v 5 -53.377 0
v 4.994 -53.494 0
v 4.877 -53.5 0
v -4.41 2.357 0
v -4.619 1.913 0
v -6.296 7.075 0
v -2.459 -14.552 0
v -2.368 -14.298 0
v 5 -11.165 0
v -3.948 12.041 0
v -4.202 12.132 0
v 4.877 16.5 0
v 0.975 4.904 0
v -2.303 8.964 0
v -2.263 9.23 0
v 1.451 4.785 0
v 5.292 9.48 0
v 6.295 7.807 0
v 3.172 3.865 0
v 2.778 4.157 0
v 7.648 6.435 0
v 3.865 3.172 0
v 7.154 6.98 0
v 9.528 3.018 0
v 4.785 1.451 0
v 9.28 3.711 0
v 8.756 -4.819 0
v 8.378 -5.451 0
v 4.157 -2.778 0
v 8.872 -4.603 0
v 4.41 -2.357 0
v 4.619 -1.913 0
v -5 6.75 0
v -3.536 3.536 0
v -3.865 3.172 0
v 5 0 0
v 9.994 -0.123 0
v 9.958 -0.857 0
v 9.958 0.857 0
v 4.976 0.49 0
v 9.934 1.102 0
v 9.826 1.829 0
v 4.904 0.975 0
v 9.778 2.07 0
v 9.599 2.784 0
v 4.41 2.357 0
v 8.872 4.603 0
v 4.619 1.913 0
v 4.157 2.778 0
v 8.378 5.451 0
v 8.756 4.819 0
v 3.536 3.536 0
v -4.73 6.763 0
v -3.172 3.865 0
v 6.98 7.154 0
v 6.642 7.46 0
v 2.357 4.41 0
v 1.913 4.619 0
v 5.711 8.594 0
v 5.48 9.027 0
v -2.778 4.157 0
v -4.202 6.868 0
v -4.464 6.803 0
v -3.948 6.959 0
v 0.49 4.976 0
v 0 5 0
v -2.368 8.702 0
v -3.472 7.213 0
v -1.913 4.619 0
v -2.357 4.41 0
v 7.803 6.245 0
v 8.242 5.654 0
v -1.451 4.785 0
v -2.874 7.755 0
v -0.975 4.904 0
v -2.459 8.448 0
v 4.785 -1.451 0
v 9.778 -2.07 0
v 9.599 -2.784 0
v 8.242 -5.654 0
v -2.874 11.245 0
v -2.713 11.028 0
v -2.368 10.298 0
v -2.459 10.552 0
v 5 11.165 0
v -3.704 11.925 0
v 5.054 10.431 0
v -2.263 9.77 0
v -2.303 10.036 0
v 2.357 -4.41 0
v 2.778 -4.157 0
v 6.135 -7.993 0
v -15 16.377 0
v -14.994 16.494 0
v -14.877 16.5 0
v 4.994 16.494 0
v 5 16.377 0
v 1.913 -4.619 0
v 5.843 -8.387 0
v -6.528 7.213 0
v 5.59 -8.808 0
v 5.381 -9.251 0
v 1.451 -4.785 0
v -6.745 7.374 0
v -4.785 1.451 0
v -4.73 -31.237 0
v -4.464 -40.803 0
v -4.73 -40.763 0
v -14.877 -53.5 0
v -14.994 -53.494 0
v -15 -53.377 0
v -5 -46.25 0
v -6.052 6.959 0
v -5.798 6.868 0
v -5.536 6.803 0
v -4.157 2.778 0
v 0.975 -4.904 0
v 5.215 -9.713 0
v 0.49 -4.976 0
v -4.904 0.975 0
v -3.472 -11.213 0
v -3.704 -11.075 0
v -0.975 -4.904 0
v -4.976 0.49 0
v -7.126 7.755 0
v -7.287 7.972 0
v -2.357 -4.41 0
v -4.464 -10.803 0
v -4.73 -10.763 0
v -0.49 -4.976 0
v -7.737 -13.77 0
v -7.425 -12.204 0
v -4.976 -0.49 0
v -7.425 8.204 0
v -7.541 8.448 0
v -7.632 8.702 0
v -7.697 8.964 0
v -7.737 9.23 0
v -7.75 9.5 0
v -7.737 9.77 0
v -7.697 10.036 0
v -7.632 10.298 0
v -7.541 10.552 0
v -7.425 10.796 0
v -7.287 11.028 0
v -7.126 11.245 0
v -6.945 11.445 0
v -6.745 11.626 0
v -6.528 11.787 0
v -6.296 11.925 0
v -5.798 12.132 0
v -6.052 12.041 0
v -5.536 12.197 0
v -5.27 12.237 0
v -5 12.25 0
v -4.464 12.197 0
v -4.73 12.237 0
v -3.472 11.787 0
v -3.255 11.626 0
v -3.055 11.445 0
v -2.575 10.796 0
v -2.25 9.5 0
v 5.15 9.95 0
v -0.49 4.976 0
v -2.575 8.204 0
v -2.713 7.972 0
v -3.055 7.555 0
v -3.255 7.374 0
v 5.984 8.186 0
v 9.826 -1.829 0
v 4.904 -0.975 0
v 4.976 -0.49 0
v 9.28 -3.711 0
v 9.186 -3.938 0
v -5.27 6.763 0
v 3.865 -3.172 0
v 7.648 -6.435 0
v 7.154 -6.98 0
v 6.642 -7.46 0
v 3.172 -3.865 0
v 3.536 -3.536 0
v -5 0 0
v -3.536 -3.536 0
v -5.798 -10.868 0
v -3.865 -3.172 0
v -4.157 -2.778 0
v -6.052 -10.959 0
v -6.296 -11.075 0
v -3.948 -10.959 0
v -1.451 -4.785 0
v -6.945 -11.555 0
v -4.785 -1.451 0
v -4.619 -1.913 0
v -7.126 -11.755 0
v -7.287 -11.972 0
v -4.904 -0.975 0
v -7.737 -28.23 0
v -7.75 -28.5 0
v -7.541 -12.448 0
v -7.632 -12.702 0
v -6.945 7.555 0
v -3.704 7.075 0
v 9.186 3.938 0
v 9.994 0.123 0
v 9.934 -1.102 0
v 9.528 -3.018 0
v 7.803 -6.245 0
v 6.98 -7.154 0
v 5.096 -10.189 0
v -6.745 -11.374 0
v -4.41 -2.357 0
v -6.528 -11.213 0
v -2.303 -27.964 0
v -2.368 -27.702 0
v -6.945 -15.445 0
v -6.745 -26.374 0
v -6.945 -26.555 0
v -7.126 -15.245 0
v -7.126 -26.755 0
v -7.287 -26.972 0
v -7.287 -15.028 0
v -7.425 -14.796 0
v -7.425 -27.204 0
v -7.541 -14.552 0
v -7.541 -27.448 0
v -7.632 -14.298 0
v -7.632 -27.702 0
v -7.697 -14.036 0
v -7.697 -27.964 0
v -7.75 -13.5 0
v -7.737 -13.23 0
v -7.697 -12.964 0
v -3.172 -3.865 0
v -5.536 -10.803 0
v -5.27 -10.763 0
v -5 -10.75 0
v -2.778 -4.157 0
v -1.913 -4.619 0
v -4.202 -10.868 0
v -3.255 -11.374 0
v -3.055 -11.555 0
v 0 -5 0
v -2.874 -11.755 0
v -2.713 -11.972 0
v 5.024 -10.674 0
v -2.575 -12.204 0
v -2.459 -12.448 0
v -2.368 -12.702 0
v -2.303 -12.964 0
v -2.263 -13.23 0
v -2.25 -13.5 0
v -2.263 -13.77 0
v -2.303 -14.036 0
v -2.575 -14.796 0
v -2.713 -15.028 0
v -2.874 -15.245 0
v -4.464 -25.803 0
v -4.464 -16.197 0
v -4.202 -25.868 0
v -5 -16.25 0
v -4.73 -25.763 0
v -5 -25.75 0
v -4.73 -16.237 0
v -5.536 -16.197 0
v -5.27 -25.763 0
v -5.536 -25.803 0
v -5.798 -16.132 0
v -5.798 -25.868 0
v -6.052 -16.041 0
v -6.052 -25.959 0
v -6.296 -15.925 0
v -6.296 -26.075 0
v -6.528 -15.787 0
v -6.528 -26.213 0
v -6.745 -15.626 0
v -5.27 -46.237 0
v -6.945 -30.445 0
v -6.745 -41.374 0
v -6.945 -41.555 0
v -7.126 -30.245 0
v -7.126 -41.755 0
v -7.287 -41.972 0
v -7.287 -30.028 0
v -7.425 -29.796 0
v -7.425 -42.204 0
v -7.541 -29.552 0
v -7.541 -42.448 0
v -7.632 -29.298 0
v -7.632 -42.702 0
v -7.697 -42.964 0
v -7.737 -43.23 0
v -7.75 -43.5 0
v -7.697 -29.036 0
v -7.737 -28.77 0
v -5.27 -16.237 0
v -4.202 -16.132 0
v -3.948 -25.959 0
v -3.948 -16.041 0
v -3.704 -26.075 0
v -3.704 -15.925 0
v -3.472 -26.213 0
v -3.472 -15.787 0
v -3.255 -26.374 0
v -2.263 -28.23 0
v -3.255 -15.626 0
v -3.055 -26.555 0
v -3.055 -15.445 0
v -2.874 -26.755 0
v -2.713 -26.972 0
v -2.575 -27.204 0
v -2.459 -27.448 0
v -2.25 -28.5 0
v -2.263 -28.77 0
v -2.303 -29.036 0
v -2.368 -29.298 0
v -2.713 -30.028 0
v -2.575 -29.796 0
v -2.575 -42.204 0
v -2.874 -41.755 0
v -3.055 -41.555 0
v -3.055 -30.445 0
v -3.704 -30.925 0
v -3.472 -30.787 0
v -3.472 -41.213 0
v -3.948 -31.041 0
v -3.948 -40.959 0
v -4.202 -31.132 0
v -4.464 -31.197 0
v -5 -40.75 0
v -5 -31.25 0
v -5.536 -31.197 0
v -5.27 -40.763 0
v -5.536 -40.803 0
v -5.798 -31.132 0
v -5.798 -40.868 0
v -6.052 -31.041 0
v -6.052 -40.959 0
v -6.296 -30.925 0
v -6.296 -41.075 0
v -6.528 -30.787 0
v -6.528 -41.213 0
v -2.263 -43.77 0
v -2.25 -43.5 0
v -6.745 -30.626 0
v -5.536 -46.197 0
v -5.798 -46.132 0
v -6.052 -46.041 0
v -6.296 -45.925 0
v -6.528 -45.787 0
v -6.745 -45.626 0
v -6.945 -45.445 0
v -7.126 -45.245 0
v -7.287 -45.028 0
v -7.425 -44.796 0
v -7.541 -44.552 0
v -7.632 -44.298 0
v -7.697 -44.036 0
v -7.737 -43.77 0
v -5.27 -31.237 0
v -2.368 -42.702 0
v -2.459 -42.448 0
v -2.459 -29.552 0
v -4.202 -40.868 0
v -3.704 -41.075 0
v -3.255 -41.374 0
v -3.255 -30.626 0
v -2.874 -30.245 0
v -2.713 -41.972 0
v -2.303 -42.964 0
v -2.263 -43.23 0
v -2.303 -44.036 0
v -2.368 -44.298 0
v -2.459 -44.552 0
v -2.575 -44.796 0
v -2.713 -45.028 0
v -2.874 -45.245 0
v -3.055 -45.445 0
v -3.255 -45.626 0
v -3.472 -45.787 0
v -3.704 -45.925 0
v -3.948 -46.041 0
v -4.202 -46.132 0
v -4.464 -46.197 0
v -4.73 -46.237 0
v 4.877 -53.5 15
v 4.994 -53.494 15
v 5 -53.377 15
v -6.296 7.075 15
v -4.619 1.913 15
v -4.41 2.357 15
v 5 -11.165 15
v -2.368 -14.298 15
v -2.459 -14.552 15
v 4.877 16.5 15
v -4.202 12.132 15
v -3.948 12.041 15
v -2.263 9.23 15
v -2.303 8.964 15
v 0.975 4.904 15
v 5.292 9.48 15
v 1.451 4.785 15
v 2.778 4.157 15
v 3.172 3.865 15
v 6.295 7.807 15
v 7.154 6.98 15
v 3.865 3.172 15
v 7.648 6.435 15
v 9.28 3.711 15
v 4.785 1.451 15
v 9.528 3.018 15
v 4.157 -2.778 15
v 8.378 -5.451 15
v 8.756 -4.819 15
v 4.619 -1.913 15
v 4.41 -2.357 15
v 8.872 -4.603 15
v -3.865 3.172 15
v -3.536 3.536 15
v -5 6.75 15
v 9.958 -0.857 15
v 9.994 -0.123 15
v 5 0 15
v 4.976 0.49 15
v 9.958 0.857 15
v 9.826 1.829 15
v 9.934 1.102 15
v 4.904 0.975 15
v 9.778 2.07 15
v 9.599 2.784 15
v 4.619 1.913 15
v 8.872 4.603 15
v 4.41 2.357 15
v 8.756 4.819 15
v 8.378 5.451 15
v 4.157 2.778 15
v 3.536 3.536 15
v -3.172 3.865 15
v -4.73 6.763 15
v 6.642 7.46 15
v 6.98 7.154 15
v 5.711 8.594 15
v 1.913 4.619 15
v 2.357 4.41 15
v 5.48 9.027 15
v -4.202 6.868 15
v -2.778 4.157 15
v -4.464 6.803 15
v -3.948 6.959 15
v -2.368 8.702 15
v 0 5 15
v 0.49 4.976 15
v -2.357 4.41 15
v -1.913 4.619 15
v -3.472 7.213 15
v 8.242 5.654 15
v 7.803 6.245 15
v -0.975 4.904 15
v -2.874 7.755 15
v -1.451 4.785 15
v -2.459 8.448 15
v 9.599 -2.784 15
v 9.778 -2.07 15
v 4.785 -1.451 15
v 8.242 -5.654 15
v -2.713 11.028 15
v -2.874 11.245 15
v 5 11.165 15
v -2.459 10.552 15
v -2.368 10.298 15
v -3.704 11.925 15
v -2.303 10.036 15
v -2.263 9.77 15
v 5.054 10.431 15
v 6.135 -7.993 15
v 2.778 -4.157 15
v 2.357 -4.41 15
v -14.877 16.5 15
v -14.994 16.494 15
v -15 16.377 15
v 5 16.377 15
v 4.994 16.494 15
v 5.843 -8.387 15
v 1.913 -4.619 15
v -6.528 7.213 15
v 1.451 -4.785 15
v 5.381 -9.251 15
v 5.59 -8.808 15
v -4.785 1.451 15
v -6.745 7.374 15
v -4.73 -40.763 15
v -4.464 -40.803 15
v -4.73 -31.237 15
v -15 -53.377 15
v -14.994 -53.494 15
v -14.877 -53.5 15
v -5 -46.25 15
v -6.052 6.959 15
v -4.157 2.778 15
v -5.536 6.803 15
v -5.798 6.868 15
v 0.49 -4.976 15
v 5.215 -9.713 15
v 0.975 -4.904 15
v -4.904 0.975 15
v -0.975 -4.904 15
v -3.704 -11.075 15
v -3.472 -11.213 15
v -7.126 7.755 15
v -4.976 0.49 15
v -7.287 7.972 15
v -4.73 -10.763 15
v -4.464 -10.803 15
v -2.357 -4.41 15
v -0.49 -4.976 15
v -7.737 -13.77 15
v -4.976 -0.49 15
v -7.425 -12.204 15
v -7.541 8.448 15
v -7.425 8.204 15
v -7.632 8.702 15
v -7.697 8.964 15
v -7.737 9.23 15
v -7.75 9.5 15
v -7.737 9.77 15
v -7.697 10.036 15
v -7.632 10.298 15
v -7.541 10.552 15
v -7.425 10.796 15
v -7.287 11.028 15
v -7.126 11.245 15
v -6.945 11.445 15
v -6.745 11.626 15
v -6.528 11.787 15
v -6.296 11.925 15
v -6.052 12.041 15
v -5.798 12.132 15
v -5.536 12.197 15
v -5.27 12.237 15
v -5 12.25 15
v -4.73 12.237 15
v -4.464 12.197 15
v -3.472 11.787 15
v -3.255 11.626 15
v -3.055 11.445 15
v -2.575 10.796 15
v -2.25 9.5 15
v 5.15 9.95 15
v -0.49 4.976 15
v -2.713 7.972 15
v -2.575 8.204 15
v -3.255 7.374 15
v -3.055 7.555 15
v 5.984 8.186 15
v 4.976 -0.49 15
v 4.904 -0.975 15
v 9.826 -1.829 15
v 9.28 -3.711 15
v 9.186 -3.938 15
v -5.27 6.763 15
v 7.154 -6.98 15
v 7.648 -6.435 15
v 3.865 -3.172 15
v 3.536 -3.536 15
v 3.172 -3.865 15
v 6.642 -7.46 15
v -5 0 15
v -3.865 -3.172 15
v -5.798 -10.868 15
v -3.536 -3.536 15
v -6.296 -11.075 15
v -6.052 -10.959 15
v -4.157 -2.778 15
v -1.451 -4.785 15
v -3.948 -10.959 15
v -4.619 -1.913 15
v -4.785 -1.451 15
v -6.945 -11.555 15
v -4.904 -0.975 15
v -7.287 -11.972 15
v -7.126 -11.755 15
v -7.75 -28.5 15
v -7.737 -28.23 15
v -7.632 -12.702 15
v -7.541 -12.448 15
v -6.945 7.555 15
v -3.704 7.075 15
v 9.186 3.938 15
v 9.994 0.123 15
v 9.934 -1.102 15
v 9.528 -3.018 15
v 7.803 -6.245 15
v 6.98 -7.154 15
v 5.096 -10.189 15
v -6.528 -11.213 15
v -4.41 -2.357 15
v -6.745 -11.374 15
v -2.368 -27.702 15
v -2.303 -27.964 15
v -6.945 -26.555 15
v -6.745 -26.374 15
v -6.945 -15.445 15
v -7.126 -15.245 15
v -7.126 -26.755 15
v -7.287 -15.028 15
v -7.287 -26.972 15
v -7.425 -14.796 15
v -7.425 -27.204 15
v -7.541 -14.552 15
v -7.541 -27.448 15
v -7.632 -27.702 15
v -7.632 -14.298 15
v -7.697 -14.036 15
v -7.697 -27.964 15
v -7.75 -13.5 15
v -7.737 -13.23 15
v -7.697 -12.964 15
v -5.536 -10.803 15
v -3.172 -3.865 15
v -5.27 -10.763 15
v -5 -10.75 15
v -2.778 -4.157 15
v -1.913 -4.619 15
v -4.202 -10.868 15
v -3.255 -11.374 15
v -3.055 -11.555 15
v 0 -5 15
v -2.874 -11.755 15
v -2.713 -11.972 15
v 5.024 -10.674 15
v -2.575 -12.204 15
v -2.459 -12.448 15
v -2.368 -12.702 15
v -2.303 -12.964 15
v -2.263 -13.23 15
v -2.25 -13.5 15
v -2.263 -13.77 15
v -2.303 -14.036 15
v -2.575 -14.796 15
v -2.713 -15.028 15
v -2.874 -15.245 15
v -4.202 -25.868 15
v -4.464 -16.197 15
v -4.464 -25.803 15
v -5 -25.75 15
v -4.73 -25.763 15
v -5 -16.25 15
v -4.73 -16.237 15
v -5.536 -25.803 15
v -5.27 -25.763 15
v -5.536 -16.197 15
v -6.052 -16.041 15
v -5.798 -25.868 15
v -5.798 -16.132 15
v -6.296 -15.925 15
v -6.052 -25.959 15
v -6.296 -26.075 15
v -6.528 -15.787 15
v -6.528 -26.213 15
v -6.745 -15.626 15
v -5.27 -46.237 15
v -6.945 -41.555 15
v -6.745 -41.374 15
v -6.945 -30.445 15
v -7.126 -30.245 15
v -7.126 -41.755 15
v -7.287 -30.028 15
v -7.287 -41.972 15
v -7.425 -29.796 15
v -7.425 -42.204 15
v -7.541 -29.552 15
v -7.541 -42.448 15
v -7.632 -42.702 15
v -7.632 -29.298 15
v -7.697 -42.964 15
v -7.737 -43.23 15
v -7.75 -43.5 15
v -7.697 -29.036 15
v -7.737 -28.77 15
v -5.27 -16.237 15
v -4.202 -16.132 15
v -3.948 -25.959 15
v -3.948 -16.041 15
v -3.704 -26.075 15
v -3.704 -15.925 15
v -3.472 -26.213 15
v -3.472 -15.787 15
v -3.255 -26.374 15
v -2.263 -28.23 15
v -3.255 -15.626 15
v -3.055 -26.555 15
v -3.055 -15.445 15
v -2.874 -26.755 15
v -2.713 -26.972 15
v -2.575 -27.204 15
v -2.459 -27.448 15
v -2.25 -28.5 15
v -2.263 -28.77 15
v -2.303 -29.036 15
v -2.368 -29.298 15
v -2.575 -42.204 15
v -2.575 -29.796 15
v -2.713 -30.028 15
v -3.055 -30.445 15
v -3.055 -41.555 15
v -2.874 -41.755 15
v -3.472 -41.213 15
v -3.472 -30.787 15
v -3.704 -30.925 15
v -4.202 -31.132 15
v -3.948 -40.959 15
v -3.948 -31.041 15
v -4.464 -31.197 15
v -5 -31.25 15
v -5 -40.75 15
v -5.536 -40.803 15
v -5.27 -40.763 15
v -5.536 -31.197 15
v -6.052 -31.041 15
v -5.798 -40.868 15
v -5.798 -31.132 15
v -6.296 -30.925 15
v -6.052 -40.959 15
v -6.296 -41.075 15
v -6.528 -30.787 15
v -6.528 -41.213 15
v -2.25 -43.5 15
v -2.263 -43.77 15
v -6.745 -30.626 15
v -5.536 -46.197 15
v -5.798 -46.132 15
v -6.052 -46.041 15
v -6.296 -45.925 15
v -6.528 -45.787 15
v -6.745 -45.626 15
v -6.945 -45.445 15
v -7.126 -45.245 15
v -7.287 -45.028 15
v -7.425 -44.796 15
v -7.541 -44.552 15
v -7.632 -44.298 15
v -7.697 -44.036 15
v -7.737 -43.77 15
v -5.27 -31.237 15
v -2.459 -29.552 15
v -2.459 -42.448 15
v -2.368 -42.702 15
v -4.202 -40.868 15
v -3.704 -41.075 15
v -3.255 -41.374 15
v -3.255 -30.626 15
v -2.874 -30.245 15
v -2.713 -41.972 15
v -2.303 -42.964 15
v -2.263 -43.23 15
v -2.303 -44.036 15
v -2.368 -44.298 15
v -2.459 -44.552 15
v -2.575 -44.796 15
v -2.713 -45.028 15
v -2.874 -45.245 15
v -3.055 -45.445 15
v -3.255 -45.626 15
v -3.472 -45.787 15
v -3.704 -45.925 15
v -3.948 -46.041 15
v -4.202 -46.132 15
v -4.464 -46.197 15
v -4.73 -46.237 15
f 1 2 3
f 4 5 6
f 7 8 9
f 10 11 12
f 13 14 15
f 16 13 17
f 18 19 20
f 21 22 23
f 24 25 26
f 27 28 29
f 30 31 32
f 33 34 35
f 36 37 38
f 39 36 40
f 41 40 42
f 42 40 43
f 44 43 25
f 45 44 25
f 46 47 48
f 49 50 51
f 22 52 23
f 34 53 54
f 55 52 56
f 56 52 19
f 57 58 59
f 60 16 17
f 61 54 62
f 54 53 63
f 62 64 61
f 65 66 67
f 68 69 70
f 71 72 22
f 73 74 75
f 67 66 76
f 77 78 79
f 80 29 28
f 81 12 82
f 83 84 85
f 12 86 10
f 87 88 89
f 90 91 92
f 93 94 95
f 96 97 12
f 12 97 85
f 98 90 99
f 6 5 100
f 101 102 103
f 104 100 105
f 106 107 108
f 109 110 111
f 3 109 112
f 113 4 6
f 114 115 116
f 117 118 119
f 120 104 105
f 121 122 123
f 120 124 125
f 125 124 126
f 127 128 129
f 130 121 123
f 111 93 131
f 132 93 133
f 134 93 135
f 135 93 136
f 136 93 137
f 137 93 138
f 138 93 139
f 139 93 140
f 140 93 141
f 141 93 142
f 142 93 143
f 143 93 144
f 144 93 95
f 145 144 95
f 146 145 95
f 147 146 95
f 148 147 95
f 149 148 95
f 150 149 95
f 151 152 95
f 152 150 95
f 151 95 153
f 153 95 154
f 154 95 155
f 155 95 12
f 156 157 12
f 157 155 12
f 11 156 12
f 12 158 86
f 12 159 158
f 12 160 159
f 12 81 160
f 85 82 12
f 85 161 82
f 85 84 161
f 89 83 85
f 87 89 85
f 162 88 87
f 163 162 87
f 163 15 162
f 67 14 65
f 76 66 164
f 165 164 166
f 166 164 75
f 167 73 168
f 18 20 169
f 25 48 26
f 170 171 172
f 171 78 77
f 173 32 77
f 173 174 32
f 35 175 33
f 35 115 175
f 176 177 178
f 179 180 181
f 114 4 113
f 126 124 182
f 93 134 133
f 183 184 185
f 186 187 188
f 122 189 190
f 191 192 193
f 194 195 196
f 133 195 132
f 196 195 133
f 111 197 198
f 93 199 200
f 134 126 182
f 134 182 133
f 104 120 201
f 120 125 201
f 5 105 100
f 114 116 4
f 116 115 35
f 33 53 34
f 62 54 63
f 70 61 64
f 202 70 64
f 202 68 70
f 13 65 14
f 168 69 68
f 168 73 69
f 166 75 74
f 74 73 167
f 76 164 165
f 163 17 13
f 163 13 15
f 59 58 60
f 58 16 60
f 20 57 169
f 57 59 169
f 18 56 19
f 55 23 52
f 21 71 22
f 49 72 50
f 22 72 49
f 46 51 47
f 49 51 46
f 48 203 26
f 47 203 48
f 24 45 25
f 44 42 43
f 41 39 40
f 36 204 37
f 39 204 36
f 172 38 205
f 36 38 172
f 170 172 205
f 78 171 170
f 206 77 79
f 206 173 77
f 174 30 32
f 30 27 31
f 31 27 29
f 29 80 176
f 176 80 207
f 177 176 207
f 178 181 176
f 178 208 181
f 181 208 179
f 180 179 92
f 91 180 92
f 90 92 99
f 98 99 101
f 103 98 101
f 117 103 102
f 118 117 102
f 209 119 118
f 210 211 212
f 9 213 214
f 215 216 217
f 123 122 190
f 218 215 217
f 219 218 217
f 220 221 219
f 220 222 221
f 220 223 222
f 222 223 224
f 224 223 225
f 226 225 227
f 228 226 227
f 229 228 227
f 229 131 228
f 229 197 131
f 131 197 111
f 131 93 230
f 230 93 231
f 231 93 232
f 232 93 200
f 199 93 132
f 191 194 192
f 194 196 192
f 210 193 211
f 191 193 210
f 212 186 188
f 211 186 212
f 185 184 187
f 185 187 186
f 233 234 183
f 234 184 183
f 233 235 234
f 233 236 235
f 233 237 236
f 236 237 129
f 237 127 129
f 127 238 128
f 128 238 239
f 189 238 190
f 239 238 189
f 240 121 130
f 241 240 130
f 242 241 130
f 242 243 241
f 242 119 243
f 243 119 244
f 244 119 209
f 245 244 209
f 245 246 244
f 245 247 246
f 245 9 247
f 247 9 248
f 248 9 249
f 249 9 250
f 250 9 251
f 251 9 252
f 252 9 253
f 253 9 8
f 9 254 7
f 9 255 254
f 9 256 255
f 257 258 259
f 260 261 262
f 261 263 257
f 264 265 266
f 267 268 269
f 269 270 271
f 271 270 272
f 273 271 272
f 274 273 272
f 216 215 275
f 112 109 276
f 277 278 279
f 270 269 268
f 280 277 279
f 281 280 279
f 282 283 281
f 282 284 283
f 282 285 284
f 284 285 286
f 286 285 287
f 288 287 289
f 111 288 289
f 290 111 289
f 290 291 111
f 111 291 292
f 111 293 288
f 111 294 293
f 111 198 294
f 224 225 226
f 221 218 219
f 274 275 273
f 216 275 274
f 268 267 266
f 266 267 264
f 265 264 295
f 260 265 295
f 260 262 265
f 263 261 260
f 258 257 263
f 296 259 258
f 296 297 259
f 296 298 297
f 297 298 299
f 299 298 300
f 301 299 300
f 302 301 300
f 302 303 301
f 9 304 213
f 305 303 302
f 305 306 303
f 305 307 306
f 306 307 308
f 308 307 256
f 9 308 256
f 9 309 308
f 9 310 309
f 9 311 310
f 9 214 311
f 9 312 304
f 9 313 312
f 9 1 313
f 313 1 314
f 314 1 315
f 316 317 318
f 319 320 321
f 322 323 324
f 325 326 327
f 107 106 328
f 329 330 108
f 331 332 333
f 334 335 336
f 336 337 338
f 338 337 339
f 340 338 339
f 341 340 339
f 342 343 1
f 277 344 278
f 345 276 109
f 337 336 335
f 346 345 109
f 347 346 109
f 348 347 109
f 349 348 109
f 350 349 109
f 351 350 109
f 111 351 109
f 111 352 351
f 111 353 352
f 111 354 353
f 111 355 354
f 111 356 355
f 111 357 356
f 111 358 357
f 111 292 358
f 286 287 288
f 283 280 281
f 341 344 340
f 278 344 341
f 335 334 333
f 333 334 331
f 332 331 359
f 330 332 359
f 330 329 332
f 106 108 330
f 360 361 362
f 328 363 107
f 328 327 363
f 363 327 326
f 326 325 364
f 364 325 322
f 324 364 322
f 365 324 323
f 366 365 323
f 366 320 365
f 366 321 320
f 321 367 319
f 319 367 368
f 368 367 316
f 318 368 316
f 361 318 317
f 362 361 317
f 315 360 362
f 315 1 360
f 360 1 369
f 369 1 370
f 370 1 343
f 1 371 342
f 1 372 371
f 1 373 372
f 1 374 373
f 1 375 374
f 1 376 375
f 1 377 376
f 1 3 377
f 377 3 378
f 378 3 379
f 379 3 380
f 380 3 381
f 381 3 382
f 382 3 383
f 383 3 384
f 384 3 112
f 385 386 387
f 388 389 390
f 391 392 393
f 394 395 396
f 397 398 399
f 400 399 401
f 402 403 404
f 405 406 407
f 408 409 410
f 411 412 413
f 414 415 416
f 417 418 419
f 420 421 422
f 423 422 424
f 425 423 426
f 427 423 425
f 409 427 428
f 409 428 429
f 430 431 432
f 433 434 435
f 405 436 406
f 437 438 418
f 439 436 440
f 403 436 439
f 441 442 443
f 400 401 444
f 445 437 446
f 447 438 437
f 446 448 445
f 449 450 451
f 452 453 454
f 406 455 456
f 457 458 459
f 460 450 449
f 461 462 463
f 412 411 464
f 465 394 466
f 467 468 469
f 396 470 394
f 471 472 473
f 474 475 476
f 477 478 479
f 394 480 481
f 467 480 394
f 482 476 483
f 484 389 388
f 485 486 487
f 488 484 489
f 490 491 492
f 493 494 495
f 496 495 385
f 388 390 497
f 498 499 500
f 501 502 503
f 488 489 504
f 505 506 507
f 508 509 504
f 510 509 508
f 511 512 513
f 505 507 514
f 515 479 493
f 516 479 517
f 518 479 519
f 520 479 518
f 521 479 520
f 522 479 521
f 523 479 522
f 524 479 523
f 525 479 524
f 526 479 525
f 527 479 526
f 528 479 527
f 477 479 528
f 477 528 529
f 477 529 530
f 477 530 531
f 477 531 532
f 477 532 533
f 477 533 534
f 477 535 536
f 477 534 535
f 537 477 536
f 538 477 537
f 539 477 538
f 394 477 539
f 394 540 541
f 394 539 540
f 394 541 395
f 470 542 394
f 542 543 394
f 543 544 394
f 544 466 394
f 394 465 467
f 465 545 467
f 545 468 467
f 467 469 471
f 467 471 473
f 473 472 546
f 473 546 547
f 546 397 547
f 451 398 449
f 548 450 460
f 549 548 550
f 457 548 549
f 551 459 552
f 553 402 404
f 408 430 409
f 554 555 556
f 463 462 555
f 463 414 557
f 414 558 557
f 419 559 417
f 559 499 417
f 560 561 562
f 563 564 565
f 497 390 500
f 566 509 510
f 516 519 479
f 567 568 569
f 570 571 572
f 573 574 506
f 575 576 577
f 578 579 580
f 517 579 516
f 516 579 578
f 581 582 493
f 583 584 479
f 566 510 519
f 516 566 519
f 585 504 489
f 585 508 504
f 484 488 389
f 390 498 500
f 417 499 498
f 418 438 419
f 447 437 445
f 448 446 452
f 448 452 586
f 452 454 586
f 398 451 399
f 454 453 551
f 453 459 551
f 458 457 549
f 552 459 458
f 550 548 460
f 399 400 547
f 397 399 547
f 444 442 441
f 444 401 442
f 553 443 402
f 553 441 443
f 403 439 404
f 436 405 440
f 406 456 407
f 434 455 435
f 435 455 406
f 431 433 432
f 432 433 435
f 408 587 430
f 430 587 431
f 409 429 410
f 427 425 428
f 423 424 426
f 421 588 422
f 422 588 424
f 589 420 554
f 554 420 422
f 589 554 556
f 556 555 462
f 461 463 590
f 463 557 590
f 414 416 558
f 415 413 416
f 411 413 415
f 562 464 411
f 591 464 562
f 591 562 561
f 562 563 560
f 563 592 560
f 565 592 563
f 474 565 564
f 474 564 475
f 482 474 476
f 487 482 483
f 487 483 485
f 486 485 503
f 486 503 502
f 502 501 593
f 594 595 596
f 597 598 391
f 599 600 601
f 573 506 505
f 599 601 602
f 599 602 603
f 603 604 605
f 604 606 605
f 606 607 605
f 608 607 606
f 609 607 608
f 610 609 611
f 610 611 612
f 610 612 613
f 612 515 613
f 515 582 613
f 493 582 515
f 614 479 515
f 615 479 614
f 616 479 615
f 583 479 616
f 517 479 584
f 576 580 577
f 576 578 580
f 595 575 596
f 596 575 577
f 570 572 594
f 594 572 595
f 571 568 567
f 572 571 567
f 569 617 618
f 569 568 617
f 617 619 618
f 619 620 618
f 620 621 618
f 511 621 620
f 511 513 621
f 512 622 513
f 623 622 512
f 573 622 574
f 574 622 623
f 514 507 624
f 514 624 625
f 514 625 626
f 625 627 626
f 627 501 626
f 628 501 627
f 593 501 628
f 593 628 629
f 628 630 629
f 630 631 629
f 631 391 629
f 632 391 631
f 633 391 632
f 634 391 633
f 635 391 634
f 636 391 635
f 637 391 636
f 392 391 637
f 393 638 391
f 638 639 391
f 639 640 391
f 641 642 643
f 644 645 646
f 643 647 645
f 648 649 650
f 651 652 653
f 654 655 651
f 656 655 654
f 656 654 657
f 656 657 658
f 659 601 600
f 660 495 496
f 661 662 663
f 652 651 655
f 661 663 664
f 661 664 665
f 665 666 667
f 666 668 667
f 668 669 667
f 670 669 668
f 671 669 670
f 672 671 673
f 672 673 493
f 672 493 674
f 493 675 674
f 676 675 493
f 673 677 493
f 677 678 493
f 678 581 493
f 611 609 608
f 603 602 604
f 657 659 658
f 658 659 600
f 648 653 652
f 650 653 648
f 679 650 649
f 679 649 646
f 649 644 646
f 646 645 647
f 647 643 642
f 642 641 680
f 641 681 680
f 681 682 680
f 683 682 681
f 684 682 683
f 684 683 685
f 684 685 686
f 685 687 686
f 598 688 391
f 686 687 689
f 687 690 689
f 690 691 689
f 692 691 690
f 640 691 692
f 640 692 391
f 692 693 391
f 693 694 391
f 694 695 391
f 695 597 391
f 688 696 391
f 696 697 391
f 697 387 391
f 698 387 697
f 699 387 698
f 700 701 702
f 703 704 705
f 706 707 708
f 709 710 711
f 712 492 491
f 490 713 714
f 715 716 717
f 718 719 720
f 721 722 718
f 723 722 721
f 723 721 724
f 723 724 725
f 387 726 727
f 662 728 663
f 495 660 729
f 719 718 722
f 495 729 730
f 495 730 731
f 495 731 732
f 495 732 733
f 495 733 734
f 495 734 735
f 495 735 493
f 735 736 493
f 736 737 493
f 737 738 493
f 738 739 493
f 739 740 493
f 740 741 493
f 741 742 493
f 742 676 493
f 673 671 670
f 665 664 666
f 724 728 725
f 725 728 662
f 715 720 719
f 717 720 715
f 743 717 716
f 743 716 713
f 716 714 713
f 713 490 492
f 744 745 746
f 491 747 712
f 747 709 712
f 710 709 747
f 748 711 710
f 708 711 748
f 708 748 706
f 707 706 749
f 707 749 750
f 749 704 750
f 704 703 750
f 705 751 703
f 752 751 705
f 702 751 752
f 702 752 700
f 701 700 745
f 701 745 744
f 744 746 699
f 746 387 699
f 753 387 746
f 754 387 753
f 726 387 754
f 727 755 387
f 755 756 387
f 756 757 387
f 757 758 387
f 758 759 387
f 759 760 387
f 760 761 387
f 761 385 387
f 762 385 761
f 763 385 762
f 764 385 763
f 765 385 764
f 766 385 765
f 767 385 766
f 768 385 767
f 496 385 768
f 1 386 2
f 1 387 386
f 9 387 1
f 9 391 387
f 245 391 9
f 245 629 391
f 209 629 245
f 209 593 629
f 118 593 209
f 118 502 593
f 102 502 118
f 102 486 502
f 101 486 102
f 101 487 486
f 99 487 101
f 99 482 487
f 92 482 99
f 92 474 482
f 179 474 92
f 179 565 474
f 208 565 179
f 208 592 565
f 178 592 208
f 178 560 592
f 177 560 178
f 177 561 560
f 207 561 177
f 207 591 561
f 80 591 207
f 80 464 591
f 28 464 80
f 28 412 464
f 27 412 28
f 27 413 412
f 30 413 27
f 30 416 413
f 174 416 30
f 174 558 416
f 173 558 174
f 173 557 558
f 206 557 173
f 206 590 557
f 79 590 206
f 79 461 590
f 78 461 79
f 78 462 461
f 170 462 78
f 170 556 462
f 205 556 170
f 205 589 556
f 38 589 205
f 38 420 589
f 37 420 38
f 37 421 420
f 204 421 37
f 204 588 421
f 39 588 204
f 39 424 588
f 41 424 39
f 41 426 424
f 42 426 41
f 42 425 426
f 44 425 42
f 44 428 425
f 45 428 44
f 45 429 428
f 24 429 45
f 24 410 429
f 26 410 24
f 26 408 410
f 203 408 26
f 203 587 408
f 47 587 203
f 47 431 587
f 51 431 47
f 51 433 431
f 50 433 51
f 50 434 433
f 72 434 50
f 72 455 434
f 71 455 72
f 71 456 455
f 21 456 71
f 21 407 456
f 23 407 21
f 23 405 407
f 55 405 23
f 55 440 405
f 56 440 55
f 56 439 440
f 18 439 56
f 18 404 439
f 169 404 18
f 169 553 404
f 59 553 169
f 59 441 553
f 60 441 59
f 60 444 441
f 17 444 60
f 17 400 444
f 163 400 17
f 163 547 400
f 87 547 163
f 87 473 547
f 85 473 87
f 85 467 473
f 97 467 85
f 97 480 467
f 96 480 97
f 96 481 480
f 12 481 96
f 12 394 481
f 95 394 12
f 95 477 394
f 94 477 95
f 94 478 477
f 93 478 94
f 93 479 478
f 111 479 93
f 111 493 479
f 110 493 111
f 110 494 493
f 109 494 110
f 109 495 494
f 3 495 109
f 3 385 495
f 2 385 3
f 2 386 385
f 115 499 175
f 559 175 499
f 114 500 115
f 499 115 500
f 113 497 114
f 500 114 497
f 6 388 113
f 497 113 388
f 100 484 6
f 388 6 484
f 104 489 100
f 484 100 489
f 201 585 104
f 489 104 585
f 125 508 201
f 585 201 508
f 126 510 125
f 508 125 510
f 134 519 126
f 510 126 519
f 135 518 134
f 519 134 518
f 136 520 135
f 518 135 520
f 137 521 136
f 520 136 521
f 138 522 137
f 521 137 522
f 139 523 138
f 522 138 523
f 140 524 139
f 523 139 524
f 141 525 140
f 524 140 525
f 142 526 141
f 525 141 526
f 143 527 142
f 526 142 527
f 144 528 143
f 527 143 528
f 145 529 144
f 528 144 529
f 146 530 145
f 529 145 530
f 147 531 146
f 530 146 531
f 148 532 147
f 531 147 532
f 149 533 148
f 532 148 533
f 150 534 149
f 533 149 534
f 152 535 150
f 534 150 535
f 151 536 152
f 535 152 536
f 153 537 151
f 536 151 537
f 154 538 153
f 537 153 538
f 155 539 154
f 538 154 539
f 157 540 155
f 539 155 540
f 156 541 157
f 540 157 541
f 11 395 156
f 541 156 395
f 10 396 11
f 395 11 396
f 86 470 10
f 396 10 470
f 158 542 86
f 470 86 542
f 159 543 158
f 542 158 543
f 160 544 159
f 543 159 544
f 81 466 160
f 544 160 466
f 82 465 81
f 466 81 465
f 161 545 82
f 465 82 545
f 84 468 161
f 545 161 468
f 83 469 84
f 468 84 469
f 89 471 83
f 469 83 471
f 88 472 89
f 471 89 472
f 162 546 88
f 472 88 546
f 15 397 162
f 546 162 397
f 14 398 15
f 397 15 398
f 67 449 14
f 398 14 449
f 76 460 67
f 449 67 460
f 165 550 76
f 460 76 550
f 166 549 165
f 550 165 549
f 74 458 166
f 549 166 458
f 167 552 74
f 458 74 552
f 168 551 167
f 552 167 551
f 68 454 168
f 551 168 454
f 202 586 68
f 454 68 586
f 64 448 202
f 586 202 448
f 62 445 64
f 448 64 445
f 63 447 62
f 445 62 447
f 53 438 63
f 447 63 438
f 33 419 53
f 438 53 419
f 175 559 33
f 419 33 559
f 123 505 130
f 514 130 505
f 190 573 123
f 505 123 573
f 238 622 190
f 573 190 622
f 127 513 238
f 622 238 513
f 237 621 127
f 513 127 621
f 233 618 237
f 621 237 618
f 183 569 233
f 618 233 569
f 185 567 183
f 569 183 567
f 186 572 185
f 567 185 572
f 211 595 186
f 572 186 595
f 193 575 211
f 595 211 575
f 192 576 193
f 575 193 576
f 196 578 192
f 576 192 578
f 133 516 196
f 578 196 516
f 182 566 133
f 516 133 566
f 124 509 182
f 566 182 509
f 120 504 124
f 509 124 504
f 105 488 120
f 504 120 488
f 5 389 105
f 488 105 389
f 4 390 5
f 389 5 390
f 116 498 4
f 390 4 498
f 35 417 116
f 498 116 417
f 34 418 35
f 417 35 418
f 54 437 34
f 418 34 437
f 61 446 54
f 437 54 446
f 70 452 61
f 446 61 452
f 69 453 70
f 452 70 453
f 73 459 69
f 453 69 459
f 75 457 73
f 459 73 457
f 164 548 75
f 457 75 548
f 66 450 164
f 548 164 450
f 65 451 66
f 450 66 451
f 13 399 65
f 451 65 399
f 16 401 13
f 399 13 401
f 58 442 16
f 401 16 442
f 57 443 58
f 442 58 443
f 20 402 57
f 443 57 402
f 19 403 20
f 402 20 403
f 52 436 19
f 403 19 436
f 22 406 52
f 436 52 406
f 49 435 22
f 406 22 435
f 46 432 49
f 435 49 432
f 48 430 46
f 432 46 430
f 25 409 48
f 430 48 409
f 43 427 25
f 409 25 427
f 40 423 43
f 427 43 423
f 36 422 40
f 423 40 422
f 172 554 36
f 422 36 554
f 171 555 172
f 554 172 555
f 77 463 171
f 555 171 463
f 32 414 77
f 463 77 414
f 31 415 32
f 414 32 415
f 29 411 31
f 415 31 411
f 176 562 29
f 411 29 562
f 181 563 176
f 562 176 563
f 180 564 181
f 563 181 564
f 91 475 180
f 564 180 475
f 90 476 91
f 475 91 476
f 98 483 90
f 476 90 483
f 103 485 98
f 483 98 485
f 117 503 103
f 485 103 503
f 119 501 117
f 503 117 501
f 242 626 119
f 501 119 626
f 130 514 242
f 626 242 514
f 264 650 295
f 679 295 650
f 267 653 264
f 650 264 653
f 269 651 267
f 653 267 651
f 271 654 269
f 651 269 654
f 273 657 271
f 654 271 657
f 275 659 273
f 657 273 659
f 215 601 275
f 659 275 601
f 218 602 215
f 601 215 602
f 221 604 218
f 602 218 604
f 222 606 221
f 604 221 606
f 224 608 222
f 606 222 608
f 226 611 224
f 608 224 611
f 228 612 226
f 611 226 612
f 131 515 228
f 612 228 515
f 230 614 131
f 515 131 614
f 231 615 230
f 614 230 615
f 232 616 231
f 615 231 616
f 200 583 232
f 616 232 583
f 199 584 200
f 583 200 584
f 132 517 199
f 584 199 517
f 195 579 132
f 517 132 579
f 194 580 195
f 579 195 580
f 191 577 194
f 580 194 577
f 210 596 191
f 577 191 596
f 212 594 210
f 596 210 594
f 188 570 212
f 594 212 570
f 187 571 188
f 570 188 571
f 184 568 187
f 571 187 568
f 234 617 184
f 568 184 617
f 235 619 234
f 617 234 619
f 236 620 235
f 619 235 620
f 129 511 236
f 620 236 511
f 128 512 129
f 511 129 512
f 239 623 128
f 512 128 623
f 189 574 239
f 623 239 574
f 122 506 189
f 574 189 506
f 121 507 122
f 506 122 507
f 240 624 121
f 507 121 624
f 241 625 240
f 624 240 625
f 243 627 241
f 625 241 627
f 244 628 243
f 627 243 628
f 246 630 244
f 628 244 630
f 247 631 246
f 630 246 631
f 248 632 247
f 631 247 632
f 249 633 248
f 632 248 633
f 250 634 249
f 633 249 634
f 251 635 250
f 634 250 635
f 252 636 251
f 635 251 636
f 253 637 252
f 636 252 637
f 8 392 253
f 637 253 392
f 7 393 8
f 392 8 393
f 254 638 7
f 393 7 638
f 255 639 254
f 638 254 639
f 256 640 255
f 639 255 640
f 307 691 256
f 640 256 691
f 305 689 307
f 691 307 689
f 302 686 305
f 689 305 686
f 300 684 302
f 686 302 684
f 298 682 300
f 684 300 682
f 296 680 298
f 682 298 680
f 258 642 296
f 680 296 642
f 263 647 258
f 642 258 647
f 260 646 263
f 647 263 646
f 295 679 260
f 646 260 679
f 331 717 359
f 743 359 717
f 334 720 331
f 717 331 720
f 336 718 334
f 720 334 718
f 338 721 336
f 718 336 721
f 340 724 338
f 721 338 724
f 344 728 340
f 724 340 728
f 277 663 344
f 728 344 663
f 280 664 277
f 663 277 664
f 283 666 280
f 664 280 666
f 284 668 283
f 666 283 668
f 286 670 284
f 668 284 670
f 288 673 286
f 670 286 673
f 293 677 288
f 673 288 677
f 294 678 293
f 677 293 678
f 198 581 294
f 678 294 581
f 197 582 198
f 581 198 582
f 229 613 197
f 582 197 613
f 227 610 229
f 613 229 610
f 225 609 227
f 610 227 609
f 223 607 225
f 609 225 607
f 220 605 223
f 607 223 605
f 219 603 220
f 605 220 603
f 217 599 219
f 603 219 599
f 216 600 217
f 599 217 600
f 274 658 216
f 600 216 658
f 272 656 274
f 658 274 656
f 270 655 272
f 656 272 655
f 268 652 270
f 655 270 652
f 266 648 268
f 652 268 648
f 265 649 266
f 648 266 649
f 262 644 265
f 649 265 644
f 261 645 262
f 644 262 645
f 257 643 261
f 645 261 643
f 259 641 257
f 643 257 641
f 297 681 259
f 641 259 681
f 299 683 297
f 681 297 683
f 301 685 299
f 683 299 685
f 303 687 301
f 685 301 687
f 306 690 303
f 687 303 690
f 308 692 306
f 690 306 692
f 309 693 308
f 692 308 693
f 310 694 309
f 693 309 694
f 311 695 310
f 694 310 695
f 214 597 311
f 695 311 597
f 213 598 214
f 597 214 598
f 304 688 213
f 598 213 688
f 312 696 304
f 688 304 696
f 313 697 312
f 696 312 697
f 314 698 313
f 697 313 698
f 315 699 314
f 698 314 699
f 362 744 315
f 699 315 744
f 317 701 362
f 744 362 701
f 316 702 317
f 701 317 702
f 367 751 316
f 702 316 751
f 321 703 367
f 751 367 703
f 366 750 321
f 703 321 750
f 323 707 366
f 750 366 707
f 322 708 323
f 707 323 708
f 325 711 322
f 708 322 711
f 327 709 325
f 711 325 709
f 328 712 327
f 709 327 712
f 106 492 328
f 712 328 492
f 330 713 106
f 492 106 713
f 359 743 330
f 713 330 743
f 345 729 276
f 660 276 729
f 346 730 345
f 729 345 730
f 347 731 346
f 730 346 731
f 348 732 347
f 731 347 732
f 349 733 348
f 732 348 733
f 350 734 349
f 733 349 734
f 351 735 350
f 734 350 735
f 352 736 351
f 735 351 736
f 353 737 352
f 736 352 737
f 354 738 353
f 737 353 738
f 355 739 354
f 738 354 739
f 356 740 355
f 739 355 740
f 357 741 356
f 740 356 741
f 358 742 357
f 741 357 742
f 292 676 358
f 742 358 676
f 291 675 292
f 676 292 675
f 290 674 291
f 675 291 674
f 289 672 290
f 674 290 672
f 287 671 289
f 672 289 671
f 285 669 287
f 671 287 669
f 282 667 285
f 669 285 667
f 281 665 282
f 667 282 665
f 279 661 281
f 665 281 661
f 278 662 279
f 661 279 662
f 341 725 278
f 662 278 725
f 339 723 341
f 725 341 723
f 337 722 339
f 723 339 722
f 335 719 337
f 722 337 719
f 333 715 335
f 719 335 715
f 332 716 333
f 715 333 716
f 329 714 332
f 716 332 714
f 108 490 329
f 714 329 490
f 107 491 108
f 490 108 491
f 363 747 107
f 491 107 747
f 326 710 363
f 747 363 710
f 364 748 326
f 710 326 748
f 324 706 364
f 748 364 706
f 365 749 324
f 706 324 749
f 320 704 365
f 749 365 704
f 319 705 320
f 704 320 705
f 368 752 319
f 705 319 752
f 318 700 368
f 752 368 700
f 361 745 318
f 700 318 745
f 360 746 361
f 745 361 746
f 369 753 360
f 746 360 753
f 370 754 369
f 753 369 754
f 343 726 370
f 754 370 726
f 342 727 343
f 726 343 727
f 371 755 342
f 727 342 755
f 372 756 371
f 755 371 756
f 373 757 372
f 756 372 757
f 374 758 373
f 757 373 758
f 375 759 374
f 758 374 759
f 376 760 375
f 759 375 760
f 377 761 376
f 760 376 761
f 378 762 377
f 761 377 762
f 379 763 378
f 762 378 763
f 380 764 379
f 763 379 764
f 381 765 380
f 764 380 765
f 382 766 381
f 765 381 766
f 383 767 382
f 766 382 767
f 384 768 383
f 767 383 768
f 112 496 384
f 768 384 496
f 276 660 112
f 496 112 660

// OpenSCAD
//translate([-29,0,0])import("./smartrapcore/XY_motor_left - XY_motor_left.stl");
$fn=64;


linear_extrude(15)
difference(){
    
    offset(-5)
    offset(5)
    union(){
translate([-15,-53.5,0])
square([20,70]);
circle(d=20);}
circle(d=10);
translate([-5,-43.5,0])
circle(d=5.5);
translate([-5,-43.5+15,0])
circle(d=5.5);
translate([-5,-43.5+30,0])
circle(d=5.5);
translate([-5,-43.5+53,0])
circle(d=5.5);

}
